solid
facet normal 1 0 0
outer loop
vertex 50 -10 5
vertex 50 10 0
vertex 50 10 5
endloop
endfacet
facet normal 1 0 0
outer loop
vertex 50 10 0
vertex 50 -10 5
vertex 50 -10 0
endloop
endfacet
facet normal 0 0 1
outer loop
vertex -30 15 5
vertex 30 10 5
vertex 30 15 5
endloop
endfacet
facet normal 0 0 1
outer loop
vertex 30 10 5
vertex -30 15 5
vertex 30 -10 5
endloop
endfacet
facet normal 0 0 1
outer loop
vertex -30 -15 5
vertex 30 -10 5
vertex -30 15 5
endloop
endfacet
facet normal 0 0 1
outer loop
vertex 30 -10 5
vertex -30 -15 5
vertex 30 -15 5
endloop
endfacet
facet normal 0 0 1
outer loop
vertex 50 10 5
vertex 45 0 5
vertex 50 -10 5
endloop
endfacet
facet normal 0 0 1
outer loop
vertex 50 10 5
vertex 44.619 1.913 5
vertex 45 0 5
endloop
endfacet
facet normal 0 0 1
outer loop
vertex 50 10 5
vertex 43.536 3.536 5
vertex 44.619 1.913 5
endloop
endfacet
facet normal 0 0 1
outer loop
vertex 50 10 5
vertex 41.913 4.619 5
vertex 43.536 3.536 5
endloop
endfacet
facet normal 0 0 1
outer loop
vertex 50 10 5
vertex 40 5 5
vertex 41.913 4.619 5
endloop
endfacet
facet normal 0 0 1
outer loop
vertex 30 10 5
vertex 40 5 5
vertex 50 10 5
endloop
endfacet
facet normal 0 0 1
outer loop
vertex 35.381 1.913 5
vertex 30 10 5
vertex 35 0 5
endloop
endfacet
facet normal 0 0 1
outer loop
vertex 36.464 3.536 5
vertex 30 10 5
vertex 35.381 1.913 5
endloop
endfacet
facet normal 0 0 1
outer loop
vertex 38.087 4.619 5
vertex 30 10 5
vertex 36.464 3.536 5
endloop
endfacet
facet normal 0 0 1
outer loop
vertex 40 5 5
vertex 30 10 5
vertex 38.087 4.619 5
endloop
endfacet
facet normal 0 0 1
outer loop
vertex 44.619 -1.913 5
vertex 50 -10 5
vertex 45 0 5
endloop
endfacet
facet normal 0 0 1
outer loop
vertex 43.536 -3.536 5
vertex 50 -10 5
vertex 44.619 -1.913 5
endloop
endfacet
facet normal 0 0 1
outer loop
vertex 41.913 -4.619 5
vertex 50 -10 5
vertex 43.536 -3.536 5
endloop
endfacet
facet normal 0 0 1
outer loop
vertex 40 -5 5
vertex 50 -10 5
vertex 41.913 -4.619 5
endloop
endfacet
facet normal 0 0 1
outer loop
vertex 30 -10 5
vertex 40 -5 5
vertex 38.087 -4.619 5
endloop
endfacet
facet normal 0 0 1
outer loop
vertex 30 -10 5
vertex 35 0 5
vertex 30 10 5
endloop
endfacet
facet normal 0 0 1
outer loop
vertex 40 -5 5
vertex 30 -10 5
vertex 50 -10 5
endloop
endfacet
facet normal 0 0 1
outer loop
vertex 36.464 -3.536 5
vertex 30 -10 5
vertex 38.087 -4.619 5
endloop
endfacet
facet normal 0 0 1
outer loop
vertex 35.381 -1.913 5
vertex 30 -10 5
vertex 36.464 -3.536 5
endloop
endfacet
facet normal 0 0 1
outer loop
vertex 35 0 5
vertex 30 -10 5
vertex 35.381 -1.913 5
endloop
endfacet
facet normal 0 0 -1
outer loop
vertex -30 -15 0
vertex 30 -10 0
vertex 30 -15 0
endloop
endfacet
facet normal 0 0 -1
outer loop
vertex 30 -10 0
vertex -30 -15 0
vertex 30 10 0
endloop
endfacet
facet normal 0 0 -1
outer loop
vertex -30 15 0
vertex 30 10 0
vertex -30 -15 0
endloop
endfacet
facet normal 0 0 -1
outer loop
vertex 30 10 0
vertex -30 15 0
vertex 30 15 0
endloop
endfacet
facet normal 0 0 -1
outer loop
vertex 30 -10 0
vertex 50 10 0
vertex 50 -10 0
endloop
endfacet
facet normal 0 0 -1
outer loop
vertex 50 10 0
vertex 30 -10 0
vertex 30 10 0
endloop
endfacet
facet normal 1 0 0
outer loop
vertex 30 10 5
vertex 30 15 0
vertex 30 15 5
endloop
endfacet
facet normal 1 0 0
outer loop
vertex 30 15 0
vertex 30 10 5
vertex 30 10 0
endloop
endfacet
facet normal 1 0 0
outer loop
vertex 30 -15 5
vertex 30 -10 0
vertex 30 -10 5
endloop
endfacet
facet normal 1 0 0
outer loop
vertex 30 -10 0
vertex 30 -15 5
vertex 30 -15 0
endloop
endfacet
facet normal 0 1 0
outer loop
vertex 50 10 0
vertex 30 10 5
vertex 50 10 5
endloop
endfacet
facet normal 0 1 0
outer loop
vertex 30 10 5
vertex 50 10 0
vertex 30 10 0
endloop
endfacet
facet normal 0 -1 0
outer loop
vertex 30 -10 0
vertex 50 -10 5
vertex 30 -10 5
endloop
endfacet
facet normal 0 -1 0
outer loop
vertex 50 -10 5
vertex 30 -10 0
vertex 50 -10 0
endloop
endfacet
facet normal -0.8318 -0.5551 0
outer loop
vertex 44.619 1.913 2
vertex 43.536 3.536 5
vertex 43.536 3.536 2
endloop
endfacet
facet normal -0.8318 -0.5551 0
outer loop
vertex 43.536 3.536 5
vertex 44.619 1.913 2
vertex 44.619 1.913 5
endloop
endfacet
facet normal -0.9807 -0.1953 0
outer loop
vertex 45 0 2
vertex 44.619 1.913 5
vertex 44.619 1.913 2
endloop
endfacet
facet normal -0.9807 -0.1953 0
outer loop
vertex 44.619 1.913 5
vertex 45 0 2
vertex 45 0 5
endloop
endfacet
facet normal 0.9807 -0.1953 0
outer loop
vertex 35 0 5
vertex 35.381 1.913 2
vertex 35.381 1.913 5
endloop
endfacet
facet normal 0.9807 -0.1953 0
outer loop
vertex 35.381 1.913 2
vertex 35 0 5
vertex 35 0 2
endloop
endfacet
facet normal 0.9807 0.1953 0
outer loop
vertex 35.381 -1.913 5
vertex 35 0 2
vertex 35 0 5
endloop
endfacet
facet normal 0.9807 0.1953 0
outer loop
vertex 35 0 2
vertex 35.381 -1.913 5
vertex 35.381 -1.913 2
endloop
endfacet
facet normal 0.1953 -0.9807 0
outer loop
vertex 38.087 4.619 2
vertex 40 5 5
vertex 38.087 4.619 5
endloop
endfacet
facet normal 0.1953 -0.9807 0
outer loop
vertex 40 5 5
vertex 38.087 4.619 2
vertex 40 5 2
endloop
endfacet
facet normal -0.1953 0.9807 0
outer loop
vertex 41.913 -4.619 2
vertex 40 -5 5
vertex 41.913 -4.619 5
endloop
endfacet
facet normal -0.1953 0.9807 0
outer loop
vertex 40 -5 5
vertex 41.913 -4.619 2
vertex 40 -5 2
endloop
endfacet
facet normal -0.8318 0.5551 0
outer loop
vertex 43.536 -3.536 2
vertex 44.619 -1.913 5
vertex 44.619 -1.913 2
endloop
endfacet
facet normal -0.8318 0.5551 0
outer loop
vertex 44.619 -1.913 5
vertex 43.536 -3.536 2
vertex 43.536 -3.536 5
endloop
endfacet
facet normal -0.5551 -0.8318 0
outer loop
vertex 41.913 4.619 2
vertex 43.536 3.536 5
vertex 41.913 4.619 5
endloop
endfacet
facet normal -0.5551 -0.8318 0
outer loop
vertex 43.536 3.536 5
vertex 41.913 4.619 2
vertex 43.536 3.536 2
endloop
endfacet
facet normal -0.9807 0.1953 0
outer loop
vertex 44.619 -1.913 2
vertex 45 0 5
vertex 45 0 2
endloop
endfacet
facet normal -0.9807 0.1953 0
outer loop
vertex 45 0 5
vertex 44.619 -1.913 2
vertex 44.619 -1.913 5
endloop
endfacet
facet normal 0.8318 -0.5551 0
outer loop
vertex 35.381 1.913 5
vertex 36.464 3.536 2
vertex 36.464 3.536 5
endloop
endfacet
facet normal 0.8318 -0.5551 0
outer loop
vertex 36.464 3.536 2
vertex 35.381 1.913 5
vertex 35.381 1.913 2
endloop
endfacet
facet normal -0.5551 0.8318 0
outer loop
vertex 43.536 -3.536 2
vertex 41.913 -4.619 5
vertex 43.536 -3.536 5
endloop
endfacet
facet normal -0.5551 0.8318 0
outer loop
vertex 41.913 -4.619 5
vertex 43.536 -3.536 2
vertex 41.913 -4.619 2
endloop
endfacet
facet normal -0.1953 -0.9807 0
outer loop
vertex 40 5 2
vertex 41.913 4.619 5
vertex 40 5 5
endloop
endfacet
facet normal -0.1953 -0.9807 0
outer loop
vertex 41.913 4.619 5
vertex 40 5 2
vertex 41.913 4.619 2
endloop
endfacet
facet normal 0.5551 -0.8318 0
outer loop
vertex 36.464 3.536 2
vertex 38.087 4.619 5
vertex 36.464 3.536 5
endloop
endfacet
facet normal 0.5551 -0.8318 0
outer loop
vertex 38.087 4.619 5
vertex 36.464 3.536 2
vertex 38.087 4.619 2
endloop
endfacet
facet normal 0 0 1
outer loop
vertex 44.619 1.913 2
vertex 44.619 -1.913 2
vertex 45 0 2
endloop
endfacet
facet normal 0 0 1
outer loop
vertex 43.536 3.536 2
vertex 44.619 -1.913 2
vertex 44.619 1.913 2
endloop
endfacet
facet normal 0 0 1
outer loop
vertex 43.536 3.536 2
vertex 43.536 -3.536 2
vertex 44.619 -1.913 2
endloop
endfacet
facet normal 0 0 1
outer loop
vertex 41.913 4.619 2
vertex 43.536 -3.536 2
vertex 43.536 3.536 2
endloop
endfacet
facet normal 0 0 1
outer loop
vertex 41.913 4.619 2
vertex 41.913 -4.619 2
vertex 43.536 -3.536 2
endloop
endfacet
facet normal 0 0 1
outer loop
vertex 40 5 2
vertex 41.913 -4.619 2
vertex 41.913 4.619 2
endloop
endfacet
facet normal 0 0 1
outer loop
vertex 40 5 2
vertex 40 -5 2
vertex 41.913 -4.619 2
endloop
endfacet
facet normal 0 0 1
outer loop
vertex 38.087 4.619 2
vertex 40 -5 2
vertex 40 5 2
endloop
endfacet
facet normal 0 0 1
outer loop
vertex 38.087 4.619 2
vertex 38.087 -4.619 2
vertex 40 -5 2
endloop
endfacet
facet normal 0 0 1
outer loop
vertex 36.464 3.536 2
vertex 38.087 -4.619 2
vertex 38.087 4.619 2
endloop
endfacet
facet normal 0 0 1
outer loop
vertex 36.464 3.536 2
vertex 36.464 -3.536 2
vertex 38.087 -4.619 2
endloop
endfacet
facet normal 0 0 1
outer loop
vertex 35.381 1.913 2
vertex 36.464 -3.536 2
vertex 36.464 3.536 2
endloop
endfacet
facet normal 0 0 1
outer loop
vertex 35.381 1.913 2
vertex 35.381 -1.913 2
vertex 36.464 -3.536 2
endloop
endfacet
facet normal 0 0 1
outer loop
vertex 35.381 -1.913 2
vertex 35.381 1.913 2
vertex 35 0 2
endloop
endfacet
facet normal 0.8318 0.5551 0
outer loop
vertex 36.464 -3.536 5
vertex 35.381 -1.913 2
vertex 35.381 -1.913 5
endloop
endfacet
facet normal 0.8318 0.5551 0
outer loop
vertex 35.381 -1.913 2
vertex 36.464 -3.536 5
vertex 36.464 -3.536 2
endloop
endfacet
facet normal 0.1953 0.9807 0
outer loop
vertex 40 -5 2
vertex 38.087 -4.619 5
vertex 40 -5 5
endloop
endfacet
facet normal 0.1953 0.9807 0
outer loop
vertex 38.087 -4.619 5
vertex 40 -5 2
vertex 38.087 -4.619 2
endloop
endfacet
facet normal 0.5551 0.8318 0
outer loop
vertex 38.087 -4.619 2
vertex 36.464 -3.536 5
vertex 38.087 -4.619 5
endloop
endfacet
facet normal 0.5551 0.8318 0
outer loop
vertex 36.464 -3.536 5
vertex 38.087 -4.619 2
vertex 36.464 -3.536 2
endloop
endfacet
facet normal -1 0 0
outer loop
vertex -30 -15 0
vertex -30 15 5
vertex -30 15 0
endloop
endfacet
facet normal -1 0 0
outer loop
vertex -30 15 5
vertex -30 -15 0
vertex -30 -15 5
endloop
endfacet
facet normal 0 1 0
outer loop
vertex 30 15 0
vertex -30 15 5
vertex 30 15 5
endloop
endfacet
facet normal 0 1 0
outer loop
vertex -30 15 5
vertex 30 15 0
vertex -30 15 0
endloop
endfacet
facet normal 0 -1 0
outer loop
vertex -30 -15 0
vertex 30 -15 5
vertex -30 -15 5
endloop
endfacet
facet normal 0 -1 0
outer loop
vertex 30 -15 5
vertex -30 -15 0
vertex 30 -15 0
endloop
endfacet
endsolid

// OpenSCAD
// Define dimensions for the rectangular flat plate
rectangular_plate_length = 60; // Length of the rectangular plate
rectangular_plate_width = 30;  // Width of the rectangular plate
rectangular_plate_thickness = 5; // Thickness of the rectangular plate

// Define dimensions for the square plate with a hole
square_plate_side = 20; // Side length of the square plate
square_plate_thickness = 5; // Thickness of the square plate
hole_diameter = 10; // Diameter of the hole in the square plate

// Define the horizontal offset between the two components
horizontal_offset = 40; // Distance between the rectangular plate and square plate

// Create the rectangular flat plate
module rectangular_flat_plate() {
    cube([rectangular_plate_length, rectangular_plate_width, rectangular_plate_thickness], center = true);
}

// Create the square plate with a hole
module square_plate_with_hole() {
    difference() {
        cube([square_plate_side, square_plate_side, square_plate_thickness], center = true);
        translate([0, 0, square_plate_thickness / 2])
            cylinder(h = square_plate_thickness + 1, d = hole_diameter, center = true);
    }
}

// Assemble the model
module assembly() {
    // Rectangular flat plate
    translate([0, 0, rectangular_plate_thickness / 2])
        rectangular_flat_plate();

    // Square plate with a hole positioned next to the rectangular plate
    translate([horizontal_offset, 0, square_plate_thickness / 2])
        square_plate_with_hole();
}

// Render the assembly
assembly();
